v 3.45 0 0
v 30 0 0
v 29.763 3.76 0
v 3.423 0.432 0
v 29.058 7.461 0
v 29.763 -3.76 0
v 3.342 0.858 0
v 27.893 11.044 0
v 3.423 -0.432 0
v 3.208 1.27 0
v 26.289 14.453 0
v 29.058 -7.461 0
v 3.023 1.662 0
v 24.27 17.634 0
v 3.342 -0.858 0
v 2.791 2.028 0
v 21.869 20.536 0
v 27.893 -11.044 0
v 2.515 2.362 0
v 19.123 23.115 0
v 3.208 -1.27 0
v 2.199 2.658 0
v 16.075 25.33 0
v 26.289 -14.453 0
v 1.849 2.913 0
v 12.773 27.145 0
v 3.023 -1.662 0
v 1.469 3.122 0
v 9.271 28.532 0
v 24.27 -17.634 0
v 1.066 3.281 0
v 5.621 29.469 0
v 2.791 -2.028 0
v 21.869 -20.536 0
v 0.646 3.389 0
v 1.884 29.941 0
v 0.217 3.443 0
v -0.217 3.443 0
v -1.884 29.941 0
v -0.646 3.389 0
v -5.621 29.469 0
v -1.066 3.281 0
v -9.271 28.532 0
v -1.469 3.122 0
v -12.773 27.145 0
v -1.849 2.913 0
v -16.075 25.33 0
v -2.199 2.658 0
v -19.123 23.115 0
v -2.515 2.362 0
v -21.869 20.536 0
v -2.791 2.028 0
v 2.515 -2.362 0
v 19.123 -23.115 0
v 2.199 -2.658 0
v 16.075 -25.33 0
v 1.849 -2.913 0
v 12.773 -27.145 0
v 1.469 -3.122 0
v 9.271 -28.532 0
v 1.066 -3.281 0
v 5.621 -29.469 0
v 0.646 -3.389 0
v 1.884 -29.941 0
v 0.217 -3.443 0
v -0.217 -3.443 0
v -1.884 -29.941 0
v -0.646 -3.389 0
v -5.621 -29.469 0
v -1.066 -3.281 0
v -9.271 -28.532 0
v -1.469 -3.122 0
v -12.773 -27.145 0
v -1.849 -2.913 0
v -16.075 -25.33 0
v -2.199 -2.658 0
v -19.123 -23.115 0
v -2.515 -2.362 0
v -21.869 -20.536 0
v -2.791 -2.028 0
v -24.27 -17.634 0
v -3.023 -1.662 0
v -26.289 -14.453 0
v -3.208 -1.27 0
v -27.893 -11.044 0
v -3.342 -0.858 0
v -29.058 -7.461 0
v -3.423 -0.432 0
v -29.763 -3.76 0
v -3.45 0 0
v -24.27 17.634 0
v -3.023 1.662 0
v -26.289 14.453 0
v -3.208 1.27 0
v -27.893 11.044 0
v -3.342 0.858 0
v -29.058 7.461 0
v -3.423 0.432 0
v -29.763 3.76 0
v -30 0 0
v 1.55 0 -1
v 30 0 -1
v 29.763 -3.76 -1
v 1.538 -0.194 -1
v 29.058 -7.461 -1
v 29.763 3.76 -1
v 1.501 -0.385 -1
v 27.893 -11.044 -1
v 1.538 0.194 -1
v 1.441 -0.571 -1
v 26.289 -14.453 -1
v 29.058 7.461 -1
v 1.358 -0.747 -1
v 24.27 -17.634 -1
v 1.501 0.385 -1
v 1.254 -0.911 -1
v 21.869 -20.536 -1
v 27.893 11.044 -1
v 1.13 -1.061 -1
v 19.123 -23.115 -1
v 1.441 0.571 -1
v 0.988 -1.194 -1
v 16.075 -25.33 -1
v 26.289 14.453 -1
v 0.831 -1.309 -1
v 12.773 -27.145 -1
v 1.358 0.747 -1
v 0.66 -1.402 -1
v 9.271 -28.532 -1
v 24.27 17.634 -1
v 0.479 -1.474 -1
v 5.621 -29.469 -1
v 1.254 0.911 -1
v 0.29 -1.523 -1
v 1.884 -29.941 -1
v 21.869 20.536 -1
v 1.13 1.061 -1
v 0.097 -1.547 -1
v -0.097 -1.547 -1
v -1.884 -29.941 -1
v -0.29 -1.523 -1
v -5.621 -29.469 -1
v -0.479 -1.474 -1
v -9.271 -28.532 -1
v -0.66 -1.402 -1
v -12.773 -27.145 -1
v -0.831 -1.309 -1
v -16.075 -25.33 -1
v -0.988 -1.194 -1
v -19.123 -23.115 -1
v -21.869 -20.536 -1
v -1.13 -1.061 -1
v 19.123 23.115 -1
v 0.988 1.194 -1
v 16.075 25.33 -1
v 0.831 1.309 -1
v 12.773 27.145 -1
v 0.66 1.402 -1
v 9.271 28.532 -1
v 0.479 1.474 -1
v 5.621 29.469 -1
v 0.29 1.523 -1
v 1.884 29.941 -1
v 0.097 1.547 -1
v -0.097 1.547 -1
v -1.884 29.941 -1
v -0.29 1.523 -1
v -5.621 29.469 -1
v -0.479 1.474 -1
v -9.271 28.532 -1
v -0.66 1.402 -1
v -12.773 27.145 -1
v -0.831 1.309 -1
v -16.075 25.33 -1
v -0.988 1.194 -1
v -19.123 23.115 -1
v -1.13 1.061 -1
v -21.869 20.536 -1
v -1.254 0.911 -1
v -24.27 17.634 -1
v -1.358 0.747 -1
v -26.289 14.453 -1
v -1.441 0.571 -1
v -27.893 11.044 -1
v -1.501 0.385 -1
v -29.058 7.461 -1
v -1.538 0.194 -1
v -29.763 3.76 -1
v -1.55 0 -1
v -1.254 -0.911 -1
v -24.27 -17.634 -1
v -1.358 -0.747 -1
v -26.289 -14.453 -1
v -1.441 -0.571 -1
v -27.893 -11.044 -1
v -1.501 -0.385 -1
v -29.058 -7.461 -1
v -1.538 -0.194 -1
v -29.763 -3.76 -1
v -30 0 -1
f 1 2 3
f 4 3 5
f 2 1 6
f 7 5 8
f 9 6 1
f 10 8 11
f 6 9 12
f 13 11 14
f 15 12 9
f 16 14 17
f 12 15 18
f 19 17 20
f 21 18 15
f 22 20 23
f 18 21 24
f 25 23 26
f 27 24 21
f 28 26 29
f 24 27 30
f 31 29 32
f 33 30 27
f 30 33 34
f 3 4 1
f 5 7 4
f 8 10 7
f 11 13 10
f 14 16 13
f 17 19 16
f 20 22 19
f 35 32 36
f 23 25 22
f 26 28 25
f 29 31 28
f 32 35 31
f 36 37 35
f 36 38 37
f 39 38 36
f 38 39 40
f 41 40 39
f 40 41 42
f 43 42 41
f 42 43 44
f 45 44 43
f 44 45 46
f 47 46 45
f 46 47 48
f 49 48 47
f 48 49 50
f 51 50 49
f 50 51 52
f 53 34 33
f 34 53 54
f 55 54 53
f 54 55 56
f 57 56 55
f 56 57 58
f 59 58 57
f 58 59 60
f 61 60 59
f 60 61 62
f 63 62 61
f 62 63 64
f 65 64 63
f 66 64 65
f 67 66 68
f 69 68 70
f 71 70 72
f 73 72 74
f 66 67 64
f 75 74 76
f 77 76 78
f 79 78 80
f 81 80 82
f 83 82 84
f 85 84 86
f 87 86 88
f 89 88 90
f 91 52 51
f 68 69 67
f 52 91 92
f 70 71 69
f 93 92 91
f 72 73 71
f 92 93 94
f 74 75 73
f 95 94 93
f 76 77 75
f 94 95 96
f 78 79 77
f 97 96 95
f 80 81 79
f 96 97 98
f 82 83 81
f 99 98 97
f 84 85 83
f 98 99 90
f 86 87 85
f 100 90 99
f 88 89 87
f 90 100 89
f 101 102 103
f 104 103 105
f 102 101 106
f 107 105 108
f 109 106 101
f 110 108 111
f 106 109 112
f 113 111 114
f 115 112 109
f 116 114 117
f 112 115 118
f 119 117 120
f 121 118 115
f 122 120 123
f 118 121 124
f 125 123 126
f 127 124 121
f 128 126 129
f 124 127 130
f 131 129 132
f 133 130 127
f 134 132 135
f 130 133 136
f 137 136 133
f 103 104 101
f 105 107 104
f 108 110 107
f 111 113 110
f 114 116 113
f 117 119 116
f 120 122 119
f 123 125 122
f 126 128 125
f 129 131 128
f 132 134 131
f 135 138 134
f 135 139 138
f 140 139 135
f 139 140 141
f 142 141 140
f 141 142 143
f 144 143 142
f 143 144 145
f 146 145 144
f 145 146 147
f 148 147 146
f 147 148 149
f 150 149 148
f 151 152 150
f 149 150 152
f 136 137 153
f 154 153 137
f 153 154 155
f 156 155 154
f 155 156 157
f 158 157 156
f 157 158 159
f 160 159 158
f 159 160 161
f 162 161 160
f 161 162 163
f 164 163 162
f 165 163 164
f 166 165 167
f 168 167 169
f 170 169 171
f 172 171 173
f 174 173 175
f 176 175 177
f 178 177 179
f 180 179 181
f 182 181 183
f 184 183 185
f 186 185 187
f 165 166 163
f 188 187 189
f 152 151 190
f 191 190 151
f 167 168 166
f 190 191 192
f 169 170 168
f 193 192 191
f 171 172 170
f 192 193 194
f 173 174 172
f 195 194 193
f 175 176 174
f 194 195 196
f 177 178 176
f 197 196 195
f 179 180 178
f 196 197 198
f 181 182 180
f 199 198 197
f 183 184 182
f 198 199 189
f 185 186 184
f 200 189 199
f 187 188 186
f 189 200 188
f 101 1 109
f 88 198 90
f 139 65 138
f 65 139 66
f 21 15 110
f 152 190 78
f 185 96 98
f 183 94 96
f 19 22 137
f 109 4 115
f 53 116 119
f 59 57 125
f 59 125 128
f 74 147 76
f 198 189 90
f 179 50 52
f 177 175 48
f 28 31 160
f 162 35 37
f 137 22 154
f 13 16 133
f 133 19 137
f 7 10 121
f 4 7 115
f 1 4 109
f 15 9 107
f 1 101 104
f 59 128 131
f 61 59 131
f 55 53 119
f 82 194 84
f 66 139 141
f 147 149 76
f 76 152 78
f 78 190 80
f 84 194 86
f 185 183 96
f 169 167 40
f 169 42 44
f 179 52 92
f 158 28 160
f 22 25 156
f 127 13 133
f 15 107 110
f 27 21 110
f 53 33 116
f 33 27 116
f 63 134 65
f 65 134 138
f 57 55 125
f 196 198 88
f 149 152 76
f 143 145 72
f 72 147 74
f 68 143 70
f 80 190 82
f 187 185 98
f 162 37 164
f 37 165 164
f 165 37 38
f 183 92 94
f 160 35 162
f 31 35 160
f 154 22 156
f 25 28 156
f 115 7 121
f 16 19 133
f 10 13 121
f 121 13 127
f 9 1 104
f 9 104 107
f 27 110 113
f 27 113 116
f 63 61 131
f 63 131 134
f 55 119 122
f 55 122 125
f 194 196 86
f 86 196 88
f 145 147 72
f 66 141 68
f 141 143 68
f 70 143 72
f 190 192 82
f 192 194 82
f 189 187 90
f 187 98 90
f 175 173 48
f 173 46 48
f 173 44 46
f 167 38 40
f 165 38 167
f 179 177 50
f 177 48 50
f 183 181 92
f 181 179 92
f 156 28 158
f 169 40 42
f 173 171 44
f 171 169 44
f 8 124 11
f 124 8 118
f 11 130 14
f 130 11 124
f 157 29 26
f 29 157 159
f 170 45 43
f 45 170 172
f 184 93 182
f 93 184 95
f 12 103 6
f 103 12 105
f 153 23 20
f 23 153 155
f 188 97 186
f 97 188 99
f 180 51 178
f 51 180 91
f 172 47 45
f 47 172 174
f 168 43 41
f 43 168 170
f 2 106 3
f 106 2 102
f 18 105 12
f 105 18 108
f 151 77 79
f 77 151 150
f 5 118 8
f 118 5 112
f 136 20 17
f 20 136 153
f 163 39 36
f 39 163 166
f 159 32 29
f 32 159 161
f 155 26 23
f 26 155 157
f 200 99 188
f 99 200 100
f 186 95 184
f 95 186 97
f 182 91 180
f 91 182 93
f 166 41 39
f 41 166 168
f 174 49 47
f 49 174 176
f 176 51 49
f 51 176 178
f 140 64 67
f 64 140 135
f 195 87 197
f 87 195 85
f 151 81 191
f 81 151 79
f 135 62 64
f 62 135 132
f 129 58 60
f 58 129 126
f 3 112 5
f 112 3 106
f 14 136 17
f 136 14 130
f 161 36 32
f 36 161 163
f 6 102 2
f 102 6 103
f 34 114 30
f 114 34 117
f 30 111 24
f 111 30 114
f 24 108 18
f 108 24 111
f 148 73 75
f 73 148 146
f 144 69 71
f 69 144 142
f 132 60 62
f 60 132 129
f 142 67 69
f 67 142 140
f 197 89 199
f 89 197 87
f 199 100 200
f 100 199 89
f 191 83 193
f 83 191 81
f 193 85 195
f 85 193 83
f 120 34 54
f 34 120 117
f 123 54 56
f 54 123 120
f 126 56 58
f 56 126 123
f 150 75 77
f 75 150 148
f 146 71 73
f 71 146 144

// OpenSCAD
$fn = 50;


difference() {
	union() {
		translate(v = [0, 0, -1.0000000000]) {
			cylinder(h = 1.0000000000, r = 30.0000000000);
		}
	}
	union() {
		translate(v = [0, 0, 0]) {
			rotate(a = [0, 0, 0]) {
				difference() {
					union() {
						#translate(v = [0, 0, -1.0000000000]) {
							cylinder(h = 1.0000000000, r = 1.2500000000);
						}
						#translate(v = [0, 0, -1.0000000000]) {
							cylinder(h = 1.0000000000, r1 = 1.5500000000, r2 = 3.4500000000);
						}
						#translate(v = [0, 0, -1.0000000000]) {
							cylinder(h = 1.0000000000, r = 1.5500000000);
						}
						#translate(v = [0, 0, -1.0000000000]) {
							cylinder(h = 1.0000000000, r = 1.2500000000);
						}
					}
					union();
				}
			}
		}
	}
}
